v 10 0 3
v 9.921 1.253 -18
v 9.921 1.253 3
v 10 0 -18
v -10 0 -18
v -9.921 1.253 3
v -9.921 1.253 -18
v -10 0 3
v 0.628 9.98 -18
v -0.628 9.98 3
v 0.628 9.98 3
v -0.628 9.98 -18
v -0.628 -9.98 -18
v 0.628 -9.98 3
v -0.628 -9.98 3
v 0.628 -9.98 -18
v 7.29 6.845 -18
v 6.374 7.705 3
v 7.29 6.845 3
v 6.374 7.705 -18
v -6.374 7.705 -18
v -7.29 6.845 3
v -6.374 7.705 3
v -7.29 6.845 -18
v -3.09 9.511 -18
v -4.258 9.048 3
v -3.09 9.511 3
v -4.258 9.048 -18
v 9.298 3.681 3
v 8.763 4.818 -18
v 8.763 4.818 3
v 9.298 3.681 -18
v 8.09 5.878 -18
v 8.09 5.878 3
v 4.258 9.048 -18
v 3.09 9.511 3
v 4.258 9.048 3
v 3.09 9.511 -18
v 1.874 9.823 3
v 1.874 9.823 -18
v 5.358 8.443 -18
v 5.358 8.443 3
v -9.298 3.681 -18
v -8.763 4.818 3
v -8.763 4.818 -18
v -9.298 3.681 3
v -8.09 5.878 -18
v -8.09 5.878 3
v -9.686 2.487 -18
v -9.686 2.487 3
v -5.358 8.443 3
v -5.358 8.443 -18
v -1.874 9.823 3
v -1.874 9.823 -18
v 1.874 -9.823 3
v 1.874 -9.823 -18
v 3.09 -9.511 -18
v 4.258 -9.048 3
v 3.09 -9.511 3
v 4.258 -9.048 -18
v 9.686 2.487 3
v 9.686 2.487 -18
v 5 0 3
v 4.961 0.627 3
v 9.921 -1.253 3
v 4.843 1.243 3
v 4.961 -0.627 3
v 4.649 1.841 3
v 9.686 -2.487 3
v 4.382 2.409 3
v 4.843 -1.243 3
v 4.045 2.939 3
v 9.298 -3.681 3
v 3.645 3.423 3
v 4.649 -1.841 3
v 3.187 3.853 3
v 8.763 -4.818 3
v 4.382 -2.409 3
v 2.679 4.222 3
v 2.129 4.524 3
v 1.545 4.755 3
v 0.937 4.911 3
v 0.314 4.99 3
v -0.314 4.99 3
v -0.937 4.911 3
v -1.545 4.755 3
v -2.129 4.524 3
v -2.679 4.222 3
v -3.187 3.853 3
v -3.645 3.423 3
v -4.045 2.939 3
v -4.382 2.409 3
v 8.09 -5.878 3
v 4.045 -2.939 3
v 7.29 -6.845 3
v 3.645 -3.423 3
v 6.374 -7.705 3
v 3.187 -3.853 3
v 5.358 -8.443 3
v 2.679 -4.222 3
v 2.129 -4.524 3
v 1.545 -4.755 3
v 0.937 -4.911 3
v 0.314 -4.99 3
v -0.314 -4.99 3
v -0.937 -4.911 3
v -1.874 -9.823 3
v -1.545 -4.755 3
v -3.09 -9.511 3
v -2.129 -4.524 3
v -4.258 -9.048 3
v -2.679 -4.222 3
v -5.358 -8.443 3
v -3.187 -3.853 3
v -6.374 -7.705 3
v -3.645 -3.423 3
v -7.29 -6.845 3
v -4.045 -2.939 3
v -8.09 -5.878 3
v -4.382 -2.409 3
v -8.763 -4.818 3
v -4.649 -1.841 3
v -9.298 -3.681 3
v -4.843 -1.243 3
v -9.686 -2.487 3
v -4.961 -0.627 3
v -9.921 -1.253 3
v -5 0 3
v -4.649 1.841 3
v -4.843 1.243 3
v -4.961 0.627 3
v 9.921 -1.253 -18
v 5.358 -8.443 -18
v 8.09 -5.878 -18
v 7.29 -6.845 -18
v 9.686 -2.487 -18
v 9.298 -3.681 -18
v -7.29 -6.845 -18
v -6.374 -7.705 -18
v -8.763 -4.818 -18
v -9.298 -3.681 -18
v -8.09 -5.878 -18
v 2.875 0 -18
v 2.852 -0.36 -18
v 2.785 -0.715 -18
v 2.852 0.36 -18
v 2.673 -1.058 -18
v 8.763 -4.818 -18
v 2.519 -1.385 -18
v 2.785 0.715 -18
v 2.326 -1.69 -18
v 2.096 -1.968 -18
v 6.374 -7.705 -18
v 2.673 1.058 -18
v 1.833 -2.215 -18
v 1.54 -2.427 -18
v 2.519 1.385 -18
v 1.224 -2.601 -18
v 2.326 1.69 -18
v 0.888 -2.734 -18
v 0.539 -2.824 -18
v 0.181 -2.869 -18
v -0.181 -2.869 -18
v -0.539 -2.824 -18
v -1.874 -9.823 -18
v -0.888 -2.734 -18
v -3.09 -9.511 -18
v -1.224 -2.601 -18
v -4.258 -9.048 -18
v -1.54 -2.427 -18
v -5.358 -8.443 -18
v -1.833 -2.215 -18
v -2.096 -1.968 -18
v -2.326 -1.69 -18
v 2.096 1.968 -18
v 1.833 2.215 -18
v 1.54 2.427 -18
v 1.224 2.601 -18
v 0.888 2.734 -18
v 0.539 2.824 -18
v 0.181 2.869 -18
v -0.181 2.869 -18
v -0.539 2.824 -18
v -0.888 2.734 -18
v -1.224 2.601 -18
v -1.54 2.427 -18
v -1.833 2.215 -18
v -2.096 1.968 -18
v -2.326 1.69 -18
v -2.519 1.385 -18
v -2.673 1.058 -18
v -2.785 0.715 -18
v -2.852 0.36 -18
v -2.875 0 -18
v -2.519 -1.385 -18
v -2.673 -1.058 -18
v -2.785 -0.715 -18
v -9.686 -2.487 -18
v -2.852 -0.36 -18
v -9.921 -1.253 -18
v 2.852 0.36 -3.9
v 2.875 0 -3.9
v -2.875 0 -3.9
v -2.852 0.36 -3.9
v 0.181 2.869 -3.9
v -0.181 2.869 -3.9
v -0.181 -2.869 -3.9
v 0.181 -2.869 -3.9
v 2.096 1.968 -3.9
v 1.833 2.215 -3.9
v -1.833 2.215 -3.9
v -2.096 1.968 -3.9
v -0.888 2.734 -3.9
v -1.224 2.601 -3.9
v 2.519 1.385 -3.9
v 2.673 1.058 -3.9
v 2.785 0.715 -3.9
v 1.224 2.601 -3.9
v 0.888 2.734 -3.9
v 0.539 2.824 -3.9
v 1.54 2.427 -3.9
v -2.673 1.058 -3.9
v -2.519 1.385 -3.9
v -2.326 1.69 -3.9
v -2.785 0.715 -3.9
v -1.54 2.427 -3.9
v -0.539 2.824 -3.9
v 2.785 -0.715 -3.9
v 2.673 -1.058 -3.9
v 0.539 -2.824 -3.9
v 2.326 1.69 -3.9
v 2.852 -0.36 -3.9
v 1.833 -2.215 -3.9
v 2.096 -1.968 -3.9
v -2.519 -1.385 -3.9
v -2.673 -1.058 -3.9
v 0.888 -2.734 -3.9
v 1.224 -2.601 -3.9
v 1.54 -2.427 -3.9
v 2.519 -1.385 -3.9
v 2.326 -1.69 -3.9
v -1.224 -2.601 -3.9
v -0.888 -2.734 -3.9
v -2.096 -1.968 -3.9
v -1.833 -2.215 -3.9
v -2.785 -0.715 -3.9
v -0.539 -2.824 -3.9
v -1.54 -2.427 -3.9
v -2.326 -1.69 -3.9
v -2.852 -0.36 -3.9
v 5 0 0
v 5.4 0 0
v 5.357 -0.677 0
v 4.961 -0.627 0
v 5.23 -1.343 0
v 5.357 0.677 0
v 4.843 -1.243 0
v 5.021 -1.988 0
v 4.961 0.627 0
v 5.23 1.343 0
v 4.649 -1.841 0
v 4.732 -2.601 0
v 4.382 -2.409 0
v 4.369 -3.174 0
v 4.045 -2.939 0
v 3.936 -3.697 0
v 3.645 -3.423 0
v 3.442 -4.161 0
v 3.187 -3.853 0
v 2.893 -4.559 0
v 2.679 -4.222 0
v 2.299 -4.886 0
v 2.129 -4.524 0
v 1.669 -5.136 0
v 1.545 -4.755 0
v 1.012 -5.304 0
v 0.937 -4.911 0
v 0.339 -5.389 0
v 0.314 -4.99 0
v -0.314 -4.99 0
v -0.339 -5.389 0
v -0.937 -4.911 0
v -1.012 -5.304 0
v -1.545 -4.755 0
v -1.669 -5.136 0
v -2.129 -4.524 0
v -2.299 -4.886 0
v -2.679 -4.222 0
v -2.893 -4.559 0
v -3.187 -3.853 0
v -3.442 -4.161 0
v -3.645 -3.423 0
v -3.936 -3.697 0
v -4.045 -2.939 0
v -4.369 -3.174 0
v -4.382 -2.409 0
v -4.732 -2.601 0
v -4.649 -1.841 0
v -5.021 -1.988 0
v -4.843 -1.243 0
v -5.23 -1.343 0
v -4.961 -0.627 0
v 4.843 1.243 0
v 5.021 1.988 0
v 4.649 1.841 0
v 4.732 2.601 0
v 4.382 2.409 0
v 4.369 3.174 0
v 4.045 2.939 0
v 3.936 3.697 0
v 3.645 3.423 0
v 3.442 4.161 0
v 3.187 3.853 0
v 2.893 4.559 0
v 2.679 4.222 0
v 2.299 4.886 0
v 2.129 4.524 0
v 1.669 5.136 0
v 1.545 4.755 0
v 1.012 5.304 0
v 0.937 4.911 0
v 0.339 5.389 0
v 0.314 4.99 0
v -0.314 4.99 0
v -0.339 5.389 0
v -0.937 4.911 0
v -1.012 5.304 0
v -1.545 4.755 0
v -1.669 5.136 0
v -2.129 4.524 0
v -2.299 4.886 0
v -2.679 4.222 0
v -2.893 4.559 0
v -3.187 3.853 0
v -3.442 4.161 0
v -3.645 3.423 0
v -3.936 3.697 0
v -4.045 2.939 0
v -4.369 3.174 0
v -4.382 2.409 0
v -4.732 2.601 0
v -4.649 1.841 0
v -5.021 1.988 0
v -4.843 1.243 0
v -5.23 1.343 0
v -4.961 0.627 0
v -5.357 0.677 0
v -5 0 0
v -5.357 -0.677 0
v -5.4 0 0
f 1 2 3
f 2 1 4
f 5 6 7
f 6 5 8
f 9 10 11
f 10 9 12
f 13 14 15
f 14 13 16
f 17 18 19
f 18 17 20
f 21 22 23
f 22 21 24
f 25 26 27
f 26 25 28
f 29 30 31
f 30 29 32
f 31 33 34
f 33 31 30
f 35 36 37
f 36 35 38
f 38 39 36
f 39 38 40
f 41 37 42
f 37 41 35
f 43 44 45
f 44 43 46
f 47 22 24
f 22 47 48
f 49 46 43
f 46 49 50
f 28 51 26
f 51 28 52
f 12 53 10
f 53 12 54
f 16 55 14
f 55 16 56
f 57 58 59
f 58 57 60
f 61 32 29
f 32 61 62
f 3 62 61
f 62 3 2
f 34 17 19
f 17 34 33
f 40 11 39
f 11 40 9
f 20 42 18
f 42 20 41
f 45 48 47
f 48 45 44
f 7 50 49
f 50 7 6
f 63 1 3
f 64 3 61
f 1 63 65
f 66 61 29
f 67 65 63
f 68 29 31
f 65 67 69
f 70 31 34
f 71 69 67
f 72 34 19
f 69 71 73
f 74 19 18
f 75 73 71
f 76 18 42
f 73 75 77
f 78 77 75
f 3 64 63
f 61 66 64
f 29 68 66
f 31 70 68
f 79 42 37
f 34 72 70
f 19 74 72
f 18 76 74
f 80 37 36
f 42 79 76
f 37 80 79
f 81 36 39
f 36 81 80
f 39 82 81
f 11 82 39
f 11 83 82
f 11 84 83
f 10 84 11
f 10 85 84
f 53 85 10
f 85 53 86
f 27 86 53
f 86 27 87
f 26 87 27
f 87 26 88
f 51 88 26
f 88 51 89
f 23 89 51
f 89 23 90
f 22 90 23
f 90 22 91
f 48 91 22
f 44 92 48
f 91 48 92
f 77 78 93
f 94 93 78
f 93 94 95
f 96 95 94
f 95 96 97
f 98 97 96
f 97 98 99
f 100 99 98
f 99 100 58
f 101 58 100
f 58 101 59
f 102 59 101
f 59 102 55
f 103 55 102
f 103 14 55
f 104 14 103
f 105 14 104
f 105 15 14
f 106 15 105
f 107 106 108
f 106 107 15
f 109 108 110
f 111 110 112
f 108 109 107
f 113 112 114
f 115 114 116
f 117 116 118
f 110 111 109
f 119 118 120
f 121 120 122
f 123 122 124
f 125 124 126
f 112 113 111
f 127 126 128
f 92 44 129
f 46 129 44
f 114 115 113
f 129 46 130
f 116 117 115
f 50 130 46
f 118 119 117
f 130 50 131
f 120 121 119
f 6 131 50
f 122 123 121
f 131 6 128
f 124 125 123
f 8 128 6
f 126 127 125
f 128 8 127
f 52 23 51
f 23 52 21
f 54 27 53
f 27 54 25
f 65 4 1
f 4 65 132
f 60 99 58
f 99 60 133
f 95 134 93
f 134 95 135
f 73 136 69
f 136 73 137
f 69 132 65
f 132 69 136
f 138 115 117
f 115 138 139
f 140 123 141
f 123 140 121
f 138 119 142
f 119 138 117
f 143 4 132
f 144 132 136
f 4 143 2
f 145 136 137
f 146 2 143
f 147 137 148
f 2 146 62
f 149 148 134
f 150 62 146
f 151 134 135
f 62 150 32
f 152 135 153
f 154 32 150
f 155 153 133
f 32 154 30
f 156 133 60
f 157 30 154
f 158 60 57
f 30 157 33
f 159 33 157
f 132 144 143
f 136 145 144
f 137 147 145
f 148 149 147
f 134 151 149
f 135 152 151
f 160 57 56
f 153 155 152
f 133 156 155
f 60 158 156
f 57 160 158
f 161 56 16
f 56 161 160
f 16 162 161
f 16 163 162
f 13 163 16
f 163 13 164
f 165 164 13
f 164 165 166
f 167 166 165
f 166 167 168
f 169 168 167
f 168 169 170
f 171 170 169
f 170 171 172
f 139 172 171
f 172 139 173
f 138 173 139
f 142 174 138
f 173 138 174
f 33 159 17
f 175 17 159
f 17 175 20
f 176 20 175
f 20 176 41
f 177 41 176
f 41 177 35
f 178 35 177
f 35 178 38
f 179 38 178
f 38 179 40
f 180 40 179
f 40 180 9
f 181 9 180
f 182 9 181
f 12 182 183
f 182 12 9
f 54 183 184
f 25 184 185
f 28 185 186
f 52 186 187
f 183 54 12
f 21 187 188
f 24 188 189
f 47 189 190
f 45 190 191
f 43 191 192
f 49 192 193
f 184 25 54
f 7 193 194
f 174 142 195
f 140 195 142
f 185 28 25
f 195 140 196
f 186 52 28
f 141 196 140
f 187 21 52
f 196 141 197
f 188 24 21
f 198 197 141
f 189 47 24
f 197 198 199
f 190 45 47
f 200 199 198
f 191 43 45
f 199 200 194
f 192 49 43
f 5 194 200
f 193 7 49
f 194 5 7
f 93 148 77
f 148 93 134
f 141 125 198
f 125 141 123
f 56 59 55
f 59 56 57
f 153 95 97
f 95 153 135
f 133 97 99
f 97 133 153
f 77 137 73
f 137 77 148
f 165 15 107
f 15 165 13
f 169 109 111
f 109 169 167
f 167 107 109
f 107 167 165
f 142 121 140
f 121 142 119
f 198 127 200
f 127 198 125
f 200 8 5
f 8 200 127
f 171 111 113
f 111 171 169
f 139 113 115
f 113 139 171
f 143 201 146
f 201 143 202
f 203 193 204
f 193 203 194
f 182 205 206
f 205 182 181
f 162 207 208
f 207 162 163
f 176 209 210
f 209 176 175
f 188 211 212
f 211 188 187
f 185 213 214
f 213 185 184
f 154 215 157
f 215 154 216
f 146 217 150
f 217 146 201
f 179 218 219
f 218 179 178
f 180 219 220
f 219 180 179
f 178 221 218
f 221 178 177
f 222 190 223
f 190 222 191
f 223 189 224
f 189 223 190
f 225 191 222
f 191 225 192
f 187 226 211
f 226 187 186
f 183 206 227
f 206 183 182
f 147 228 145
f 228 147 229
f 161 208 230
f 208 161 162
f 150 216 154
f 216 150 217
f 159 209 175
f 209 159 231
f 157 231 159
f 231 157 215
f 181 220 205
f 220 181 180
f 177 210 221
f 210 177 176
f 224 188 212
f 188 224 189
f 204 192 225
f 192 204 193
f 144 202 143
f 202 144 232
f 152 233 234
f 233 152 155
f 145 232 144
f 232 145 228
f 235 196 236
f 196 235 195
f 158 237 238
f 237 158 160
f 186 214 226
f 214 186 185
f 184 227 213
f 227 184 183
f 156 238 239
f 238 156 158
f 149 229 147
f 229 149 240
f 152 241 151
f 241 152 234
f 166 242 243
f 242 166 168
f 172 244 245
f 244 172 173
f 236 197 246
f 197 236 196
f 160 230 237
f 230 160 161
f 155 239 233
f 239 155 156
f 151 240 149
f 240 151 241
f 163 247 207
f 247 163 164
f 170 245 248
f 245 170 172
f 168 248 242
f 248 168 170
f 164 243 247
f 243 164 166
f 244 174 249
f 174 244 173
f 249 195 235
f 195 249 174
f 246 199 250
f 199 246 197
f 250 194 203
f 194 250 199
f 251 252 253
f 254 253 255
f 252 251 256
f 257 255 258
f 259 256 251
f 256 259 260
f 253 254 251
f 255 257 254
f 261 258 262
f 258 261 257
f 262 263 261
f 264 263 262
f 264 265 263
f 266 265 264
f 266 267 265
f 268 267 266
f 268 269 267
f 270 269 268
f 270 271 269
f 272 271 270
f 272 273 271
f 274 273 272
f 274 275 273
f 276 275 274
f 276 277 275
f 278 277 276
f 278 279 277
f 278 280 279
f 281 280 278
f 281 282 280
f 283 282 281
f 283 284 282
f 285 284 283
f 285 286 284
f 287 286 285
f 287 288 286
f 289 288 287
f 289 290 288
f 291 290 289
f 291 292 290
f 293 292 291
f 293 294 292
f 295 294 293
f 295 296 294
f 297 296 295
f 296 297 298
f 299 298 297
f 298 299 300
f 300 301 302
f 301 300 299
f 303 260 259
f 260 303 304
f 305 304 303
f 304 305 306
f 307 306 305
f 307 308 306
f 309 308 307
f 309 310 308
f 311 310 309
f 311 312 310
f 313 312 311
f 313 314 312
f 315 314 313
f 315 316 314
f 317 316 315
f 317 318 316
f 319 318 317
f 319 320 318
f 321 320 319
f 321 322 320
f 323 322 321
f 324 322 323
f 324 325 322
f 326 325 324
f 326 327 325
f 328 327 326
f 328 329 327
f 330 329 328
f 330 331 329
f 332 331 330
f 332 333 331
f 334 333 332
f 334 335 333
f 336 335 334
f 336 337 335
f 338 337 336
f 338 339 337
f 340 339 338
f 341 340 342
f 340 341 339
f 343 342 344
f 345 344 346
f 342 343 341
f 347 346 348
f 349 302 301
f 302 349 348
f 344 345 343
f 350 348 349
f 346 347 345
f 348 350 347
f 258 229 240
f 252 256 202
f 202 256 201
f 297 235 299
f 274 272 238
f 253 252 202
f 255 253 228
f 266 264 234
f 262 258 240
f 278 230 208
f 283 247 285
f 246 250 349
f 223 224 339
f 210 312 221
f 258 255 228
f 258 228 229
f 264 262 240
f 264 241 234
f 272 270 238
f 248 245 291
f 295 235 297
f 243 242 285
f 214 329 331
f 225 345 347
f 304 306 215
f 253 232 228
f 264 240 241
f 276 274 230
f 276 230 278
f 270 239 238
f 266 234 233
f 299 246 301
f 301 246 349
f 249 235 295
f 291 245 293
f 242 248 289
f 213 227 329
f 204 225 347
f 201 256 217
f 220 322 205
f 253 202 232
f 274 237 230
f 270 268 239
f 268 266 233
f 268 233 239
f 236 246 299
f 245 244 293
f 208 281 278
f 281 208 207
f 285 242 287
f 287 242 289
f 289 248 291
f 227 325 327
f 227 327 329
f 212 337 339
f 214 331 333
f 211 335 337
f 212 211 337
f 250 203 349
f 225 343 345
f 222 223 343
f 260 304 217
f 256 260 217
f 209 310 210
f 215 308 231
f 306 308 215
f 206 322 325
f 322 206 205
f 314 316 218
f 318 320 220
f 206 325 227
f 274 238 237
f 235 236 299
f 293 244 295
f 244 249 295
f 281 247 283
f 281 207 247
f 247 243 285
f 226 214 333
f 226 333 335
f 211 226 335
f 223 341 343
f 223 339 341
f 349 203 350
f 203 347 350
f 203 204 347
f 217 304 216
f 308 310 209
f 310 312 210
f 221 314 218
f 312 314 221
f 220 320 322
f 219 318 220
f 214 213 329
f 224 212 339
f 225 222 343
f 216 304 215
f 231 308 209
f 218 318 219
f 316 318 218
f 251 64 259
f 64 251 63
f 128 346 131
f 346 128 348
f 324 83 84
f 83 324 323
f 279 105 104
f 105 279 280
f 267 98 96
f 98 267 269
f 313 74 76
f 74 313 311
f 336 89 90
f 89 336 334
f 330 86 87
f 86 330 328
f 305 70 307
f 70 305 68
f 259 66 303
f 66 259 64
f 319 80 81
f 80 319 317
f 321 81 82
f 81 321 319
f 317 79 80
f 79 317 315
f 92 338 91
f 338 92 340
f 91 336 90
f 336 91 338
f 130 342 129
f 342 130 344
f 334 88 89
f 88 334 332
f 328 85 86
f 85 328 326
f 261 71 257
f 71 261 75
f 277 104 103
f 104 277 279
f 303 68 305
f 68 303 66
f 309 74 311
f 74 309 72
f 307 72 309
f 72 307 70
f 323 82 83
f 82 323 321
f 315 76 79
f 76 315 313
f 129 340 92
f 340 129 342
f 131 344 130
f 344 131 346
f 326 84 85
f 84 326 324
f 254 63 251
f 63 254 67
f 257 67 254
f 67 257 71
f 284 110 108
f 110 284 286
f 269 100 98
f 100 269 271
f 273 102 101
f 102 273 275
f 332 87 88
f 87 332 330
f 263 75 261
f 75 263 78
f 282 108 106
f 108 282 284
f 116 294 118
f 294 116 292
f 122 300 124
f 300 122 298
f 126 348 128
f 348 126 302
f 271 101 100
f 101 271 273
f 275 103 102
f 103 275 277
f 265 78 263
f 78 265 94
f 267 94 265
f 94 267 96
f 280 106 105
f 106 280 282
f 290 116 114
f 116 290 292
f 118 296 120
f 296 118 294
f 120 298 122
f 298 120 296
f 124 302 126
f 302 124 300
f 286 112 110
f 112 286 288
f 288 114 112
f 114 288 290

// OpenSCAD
$fn = 50;

difference() {
	union() {
		translate(v = [0, 0, -18.0]) {
			cylinder(h = 21, r = 10.0);
		}
		#translate(v = [0, 0, -21.0]) {
			cylinder(h = 21, r = 2.875);
		}
	}
	union() {
		translate(v = [0, 0, 0]) {
			rotate(a = [0, 0, 0]) {
				difference() {
					union() {
						translate(v = [0, 0, -21.0]) {
							cylinder(h = 21, r = 2.6);
						}
						translate(v = [0, 0, -3.9]) {
							cylinder(h = 3.9, r1 = 2.875, r2 = 5.4);
						}
						translate(v = [0, 0, -21.0]) {
							cylinder(h = 21, r = 2.875);
						}
						translate(v = [0, 0, -21.0]) {
							cylinder(h = 21, r = 2.6);
						}
					}
					union();
				}
			}
		}
		#cylinder(h = 3, r = 5.0);
	}
}
